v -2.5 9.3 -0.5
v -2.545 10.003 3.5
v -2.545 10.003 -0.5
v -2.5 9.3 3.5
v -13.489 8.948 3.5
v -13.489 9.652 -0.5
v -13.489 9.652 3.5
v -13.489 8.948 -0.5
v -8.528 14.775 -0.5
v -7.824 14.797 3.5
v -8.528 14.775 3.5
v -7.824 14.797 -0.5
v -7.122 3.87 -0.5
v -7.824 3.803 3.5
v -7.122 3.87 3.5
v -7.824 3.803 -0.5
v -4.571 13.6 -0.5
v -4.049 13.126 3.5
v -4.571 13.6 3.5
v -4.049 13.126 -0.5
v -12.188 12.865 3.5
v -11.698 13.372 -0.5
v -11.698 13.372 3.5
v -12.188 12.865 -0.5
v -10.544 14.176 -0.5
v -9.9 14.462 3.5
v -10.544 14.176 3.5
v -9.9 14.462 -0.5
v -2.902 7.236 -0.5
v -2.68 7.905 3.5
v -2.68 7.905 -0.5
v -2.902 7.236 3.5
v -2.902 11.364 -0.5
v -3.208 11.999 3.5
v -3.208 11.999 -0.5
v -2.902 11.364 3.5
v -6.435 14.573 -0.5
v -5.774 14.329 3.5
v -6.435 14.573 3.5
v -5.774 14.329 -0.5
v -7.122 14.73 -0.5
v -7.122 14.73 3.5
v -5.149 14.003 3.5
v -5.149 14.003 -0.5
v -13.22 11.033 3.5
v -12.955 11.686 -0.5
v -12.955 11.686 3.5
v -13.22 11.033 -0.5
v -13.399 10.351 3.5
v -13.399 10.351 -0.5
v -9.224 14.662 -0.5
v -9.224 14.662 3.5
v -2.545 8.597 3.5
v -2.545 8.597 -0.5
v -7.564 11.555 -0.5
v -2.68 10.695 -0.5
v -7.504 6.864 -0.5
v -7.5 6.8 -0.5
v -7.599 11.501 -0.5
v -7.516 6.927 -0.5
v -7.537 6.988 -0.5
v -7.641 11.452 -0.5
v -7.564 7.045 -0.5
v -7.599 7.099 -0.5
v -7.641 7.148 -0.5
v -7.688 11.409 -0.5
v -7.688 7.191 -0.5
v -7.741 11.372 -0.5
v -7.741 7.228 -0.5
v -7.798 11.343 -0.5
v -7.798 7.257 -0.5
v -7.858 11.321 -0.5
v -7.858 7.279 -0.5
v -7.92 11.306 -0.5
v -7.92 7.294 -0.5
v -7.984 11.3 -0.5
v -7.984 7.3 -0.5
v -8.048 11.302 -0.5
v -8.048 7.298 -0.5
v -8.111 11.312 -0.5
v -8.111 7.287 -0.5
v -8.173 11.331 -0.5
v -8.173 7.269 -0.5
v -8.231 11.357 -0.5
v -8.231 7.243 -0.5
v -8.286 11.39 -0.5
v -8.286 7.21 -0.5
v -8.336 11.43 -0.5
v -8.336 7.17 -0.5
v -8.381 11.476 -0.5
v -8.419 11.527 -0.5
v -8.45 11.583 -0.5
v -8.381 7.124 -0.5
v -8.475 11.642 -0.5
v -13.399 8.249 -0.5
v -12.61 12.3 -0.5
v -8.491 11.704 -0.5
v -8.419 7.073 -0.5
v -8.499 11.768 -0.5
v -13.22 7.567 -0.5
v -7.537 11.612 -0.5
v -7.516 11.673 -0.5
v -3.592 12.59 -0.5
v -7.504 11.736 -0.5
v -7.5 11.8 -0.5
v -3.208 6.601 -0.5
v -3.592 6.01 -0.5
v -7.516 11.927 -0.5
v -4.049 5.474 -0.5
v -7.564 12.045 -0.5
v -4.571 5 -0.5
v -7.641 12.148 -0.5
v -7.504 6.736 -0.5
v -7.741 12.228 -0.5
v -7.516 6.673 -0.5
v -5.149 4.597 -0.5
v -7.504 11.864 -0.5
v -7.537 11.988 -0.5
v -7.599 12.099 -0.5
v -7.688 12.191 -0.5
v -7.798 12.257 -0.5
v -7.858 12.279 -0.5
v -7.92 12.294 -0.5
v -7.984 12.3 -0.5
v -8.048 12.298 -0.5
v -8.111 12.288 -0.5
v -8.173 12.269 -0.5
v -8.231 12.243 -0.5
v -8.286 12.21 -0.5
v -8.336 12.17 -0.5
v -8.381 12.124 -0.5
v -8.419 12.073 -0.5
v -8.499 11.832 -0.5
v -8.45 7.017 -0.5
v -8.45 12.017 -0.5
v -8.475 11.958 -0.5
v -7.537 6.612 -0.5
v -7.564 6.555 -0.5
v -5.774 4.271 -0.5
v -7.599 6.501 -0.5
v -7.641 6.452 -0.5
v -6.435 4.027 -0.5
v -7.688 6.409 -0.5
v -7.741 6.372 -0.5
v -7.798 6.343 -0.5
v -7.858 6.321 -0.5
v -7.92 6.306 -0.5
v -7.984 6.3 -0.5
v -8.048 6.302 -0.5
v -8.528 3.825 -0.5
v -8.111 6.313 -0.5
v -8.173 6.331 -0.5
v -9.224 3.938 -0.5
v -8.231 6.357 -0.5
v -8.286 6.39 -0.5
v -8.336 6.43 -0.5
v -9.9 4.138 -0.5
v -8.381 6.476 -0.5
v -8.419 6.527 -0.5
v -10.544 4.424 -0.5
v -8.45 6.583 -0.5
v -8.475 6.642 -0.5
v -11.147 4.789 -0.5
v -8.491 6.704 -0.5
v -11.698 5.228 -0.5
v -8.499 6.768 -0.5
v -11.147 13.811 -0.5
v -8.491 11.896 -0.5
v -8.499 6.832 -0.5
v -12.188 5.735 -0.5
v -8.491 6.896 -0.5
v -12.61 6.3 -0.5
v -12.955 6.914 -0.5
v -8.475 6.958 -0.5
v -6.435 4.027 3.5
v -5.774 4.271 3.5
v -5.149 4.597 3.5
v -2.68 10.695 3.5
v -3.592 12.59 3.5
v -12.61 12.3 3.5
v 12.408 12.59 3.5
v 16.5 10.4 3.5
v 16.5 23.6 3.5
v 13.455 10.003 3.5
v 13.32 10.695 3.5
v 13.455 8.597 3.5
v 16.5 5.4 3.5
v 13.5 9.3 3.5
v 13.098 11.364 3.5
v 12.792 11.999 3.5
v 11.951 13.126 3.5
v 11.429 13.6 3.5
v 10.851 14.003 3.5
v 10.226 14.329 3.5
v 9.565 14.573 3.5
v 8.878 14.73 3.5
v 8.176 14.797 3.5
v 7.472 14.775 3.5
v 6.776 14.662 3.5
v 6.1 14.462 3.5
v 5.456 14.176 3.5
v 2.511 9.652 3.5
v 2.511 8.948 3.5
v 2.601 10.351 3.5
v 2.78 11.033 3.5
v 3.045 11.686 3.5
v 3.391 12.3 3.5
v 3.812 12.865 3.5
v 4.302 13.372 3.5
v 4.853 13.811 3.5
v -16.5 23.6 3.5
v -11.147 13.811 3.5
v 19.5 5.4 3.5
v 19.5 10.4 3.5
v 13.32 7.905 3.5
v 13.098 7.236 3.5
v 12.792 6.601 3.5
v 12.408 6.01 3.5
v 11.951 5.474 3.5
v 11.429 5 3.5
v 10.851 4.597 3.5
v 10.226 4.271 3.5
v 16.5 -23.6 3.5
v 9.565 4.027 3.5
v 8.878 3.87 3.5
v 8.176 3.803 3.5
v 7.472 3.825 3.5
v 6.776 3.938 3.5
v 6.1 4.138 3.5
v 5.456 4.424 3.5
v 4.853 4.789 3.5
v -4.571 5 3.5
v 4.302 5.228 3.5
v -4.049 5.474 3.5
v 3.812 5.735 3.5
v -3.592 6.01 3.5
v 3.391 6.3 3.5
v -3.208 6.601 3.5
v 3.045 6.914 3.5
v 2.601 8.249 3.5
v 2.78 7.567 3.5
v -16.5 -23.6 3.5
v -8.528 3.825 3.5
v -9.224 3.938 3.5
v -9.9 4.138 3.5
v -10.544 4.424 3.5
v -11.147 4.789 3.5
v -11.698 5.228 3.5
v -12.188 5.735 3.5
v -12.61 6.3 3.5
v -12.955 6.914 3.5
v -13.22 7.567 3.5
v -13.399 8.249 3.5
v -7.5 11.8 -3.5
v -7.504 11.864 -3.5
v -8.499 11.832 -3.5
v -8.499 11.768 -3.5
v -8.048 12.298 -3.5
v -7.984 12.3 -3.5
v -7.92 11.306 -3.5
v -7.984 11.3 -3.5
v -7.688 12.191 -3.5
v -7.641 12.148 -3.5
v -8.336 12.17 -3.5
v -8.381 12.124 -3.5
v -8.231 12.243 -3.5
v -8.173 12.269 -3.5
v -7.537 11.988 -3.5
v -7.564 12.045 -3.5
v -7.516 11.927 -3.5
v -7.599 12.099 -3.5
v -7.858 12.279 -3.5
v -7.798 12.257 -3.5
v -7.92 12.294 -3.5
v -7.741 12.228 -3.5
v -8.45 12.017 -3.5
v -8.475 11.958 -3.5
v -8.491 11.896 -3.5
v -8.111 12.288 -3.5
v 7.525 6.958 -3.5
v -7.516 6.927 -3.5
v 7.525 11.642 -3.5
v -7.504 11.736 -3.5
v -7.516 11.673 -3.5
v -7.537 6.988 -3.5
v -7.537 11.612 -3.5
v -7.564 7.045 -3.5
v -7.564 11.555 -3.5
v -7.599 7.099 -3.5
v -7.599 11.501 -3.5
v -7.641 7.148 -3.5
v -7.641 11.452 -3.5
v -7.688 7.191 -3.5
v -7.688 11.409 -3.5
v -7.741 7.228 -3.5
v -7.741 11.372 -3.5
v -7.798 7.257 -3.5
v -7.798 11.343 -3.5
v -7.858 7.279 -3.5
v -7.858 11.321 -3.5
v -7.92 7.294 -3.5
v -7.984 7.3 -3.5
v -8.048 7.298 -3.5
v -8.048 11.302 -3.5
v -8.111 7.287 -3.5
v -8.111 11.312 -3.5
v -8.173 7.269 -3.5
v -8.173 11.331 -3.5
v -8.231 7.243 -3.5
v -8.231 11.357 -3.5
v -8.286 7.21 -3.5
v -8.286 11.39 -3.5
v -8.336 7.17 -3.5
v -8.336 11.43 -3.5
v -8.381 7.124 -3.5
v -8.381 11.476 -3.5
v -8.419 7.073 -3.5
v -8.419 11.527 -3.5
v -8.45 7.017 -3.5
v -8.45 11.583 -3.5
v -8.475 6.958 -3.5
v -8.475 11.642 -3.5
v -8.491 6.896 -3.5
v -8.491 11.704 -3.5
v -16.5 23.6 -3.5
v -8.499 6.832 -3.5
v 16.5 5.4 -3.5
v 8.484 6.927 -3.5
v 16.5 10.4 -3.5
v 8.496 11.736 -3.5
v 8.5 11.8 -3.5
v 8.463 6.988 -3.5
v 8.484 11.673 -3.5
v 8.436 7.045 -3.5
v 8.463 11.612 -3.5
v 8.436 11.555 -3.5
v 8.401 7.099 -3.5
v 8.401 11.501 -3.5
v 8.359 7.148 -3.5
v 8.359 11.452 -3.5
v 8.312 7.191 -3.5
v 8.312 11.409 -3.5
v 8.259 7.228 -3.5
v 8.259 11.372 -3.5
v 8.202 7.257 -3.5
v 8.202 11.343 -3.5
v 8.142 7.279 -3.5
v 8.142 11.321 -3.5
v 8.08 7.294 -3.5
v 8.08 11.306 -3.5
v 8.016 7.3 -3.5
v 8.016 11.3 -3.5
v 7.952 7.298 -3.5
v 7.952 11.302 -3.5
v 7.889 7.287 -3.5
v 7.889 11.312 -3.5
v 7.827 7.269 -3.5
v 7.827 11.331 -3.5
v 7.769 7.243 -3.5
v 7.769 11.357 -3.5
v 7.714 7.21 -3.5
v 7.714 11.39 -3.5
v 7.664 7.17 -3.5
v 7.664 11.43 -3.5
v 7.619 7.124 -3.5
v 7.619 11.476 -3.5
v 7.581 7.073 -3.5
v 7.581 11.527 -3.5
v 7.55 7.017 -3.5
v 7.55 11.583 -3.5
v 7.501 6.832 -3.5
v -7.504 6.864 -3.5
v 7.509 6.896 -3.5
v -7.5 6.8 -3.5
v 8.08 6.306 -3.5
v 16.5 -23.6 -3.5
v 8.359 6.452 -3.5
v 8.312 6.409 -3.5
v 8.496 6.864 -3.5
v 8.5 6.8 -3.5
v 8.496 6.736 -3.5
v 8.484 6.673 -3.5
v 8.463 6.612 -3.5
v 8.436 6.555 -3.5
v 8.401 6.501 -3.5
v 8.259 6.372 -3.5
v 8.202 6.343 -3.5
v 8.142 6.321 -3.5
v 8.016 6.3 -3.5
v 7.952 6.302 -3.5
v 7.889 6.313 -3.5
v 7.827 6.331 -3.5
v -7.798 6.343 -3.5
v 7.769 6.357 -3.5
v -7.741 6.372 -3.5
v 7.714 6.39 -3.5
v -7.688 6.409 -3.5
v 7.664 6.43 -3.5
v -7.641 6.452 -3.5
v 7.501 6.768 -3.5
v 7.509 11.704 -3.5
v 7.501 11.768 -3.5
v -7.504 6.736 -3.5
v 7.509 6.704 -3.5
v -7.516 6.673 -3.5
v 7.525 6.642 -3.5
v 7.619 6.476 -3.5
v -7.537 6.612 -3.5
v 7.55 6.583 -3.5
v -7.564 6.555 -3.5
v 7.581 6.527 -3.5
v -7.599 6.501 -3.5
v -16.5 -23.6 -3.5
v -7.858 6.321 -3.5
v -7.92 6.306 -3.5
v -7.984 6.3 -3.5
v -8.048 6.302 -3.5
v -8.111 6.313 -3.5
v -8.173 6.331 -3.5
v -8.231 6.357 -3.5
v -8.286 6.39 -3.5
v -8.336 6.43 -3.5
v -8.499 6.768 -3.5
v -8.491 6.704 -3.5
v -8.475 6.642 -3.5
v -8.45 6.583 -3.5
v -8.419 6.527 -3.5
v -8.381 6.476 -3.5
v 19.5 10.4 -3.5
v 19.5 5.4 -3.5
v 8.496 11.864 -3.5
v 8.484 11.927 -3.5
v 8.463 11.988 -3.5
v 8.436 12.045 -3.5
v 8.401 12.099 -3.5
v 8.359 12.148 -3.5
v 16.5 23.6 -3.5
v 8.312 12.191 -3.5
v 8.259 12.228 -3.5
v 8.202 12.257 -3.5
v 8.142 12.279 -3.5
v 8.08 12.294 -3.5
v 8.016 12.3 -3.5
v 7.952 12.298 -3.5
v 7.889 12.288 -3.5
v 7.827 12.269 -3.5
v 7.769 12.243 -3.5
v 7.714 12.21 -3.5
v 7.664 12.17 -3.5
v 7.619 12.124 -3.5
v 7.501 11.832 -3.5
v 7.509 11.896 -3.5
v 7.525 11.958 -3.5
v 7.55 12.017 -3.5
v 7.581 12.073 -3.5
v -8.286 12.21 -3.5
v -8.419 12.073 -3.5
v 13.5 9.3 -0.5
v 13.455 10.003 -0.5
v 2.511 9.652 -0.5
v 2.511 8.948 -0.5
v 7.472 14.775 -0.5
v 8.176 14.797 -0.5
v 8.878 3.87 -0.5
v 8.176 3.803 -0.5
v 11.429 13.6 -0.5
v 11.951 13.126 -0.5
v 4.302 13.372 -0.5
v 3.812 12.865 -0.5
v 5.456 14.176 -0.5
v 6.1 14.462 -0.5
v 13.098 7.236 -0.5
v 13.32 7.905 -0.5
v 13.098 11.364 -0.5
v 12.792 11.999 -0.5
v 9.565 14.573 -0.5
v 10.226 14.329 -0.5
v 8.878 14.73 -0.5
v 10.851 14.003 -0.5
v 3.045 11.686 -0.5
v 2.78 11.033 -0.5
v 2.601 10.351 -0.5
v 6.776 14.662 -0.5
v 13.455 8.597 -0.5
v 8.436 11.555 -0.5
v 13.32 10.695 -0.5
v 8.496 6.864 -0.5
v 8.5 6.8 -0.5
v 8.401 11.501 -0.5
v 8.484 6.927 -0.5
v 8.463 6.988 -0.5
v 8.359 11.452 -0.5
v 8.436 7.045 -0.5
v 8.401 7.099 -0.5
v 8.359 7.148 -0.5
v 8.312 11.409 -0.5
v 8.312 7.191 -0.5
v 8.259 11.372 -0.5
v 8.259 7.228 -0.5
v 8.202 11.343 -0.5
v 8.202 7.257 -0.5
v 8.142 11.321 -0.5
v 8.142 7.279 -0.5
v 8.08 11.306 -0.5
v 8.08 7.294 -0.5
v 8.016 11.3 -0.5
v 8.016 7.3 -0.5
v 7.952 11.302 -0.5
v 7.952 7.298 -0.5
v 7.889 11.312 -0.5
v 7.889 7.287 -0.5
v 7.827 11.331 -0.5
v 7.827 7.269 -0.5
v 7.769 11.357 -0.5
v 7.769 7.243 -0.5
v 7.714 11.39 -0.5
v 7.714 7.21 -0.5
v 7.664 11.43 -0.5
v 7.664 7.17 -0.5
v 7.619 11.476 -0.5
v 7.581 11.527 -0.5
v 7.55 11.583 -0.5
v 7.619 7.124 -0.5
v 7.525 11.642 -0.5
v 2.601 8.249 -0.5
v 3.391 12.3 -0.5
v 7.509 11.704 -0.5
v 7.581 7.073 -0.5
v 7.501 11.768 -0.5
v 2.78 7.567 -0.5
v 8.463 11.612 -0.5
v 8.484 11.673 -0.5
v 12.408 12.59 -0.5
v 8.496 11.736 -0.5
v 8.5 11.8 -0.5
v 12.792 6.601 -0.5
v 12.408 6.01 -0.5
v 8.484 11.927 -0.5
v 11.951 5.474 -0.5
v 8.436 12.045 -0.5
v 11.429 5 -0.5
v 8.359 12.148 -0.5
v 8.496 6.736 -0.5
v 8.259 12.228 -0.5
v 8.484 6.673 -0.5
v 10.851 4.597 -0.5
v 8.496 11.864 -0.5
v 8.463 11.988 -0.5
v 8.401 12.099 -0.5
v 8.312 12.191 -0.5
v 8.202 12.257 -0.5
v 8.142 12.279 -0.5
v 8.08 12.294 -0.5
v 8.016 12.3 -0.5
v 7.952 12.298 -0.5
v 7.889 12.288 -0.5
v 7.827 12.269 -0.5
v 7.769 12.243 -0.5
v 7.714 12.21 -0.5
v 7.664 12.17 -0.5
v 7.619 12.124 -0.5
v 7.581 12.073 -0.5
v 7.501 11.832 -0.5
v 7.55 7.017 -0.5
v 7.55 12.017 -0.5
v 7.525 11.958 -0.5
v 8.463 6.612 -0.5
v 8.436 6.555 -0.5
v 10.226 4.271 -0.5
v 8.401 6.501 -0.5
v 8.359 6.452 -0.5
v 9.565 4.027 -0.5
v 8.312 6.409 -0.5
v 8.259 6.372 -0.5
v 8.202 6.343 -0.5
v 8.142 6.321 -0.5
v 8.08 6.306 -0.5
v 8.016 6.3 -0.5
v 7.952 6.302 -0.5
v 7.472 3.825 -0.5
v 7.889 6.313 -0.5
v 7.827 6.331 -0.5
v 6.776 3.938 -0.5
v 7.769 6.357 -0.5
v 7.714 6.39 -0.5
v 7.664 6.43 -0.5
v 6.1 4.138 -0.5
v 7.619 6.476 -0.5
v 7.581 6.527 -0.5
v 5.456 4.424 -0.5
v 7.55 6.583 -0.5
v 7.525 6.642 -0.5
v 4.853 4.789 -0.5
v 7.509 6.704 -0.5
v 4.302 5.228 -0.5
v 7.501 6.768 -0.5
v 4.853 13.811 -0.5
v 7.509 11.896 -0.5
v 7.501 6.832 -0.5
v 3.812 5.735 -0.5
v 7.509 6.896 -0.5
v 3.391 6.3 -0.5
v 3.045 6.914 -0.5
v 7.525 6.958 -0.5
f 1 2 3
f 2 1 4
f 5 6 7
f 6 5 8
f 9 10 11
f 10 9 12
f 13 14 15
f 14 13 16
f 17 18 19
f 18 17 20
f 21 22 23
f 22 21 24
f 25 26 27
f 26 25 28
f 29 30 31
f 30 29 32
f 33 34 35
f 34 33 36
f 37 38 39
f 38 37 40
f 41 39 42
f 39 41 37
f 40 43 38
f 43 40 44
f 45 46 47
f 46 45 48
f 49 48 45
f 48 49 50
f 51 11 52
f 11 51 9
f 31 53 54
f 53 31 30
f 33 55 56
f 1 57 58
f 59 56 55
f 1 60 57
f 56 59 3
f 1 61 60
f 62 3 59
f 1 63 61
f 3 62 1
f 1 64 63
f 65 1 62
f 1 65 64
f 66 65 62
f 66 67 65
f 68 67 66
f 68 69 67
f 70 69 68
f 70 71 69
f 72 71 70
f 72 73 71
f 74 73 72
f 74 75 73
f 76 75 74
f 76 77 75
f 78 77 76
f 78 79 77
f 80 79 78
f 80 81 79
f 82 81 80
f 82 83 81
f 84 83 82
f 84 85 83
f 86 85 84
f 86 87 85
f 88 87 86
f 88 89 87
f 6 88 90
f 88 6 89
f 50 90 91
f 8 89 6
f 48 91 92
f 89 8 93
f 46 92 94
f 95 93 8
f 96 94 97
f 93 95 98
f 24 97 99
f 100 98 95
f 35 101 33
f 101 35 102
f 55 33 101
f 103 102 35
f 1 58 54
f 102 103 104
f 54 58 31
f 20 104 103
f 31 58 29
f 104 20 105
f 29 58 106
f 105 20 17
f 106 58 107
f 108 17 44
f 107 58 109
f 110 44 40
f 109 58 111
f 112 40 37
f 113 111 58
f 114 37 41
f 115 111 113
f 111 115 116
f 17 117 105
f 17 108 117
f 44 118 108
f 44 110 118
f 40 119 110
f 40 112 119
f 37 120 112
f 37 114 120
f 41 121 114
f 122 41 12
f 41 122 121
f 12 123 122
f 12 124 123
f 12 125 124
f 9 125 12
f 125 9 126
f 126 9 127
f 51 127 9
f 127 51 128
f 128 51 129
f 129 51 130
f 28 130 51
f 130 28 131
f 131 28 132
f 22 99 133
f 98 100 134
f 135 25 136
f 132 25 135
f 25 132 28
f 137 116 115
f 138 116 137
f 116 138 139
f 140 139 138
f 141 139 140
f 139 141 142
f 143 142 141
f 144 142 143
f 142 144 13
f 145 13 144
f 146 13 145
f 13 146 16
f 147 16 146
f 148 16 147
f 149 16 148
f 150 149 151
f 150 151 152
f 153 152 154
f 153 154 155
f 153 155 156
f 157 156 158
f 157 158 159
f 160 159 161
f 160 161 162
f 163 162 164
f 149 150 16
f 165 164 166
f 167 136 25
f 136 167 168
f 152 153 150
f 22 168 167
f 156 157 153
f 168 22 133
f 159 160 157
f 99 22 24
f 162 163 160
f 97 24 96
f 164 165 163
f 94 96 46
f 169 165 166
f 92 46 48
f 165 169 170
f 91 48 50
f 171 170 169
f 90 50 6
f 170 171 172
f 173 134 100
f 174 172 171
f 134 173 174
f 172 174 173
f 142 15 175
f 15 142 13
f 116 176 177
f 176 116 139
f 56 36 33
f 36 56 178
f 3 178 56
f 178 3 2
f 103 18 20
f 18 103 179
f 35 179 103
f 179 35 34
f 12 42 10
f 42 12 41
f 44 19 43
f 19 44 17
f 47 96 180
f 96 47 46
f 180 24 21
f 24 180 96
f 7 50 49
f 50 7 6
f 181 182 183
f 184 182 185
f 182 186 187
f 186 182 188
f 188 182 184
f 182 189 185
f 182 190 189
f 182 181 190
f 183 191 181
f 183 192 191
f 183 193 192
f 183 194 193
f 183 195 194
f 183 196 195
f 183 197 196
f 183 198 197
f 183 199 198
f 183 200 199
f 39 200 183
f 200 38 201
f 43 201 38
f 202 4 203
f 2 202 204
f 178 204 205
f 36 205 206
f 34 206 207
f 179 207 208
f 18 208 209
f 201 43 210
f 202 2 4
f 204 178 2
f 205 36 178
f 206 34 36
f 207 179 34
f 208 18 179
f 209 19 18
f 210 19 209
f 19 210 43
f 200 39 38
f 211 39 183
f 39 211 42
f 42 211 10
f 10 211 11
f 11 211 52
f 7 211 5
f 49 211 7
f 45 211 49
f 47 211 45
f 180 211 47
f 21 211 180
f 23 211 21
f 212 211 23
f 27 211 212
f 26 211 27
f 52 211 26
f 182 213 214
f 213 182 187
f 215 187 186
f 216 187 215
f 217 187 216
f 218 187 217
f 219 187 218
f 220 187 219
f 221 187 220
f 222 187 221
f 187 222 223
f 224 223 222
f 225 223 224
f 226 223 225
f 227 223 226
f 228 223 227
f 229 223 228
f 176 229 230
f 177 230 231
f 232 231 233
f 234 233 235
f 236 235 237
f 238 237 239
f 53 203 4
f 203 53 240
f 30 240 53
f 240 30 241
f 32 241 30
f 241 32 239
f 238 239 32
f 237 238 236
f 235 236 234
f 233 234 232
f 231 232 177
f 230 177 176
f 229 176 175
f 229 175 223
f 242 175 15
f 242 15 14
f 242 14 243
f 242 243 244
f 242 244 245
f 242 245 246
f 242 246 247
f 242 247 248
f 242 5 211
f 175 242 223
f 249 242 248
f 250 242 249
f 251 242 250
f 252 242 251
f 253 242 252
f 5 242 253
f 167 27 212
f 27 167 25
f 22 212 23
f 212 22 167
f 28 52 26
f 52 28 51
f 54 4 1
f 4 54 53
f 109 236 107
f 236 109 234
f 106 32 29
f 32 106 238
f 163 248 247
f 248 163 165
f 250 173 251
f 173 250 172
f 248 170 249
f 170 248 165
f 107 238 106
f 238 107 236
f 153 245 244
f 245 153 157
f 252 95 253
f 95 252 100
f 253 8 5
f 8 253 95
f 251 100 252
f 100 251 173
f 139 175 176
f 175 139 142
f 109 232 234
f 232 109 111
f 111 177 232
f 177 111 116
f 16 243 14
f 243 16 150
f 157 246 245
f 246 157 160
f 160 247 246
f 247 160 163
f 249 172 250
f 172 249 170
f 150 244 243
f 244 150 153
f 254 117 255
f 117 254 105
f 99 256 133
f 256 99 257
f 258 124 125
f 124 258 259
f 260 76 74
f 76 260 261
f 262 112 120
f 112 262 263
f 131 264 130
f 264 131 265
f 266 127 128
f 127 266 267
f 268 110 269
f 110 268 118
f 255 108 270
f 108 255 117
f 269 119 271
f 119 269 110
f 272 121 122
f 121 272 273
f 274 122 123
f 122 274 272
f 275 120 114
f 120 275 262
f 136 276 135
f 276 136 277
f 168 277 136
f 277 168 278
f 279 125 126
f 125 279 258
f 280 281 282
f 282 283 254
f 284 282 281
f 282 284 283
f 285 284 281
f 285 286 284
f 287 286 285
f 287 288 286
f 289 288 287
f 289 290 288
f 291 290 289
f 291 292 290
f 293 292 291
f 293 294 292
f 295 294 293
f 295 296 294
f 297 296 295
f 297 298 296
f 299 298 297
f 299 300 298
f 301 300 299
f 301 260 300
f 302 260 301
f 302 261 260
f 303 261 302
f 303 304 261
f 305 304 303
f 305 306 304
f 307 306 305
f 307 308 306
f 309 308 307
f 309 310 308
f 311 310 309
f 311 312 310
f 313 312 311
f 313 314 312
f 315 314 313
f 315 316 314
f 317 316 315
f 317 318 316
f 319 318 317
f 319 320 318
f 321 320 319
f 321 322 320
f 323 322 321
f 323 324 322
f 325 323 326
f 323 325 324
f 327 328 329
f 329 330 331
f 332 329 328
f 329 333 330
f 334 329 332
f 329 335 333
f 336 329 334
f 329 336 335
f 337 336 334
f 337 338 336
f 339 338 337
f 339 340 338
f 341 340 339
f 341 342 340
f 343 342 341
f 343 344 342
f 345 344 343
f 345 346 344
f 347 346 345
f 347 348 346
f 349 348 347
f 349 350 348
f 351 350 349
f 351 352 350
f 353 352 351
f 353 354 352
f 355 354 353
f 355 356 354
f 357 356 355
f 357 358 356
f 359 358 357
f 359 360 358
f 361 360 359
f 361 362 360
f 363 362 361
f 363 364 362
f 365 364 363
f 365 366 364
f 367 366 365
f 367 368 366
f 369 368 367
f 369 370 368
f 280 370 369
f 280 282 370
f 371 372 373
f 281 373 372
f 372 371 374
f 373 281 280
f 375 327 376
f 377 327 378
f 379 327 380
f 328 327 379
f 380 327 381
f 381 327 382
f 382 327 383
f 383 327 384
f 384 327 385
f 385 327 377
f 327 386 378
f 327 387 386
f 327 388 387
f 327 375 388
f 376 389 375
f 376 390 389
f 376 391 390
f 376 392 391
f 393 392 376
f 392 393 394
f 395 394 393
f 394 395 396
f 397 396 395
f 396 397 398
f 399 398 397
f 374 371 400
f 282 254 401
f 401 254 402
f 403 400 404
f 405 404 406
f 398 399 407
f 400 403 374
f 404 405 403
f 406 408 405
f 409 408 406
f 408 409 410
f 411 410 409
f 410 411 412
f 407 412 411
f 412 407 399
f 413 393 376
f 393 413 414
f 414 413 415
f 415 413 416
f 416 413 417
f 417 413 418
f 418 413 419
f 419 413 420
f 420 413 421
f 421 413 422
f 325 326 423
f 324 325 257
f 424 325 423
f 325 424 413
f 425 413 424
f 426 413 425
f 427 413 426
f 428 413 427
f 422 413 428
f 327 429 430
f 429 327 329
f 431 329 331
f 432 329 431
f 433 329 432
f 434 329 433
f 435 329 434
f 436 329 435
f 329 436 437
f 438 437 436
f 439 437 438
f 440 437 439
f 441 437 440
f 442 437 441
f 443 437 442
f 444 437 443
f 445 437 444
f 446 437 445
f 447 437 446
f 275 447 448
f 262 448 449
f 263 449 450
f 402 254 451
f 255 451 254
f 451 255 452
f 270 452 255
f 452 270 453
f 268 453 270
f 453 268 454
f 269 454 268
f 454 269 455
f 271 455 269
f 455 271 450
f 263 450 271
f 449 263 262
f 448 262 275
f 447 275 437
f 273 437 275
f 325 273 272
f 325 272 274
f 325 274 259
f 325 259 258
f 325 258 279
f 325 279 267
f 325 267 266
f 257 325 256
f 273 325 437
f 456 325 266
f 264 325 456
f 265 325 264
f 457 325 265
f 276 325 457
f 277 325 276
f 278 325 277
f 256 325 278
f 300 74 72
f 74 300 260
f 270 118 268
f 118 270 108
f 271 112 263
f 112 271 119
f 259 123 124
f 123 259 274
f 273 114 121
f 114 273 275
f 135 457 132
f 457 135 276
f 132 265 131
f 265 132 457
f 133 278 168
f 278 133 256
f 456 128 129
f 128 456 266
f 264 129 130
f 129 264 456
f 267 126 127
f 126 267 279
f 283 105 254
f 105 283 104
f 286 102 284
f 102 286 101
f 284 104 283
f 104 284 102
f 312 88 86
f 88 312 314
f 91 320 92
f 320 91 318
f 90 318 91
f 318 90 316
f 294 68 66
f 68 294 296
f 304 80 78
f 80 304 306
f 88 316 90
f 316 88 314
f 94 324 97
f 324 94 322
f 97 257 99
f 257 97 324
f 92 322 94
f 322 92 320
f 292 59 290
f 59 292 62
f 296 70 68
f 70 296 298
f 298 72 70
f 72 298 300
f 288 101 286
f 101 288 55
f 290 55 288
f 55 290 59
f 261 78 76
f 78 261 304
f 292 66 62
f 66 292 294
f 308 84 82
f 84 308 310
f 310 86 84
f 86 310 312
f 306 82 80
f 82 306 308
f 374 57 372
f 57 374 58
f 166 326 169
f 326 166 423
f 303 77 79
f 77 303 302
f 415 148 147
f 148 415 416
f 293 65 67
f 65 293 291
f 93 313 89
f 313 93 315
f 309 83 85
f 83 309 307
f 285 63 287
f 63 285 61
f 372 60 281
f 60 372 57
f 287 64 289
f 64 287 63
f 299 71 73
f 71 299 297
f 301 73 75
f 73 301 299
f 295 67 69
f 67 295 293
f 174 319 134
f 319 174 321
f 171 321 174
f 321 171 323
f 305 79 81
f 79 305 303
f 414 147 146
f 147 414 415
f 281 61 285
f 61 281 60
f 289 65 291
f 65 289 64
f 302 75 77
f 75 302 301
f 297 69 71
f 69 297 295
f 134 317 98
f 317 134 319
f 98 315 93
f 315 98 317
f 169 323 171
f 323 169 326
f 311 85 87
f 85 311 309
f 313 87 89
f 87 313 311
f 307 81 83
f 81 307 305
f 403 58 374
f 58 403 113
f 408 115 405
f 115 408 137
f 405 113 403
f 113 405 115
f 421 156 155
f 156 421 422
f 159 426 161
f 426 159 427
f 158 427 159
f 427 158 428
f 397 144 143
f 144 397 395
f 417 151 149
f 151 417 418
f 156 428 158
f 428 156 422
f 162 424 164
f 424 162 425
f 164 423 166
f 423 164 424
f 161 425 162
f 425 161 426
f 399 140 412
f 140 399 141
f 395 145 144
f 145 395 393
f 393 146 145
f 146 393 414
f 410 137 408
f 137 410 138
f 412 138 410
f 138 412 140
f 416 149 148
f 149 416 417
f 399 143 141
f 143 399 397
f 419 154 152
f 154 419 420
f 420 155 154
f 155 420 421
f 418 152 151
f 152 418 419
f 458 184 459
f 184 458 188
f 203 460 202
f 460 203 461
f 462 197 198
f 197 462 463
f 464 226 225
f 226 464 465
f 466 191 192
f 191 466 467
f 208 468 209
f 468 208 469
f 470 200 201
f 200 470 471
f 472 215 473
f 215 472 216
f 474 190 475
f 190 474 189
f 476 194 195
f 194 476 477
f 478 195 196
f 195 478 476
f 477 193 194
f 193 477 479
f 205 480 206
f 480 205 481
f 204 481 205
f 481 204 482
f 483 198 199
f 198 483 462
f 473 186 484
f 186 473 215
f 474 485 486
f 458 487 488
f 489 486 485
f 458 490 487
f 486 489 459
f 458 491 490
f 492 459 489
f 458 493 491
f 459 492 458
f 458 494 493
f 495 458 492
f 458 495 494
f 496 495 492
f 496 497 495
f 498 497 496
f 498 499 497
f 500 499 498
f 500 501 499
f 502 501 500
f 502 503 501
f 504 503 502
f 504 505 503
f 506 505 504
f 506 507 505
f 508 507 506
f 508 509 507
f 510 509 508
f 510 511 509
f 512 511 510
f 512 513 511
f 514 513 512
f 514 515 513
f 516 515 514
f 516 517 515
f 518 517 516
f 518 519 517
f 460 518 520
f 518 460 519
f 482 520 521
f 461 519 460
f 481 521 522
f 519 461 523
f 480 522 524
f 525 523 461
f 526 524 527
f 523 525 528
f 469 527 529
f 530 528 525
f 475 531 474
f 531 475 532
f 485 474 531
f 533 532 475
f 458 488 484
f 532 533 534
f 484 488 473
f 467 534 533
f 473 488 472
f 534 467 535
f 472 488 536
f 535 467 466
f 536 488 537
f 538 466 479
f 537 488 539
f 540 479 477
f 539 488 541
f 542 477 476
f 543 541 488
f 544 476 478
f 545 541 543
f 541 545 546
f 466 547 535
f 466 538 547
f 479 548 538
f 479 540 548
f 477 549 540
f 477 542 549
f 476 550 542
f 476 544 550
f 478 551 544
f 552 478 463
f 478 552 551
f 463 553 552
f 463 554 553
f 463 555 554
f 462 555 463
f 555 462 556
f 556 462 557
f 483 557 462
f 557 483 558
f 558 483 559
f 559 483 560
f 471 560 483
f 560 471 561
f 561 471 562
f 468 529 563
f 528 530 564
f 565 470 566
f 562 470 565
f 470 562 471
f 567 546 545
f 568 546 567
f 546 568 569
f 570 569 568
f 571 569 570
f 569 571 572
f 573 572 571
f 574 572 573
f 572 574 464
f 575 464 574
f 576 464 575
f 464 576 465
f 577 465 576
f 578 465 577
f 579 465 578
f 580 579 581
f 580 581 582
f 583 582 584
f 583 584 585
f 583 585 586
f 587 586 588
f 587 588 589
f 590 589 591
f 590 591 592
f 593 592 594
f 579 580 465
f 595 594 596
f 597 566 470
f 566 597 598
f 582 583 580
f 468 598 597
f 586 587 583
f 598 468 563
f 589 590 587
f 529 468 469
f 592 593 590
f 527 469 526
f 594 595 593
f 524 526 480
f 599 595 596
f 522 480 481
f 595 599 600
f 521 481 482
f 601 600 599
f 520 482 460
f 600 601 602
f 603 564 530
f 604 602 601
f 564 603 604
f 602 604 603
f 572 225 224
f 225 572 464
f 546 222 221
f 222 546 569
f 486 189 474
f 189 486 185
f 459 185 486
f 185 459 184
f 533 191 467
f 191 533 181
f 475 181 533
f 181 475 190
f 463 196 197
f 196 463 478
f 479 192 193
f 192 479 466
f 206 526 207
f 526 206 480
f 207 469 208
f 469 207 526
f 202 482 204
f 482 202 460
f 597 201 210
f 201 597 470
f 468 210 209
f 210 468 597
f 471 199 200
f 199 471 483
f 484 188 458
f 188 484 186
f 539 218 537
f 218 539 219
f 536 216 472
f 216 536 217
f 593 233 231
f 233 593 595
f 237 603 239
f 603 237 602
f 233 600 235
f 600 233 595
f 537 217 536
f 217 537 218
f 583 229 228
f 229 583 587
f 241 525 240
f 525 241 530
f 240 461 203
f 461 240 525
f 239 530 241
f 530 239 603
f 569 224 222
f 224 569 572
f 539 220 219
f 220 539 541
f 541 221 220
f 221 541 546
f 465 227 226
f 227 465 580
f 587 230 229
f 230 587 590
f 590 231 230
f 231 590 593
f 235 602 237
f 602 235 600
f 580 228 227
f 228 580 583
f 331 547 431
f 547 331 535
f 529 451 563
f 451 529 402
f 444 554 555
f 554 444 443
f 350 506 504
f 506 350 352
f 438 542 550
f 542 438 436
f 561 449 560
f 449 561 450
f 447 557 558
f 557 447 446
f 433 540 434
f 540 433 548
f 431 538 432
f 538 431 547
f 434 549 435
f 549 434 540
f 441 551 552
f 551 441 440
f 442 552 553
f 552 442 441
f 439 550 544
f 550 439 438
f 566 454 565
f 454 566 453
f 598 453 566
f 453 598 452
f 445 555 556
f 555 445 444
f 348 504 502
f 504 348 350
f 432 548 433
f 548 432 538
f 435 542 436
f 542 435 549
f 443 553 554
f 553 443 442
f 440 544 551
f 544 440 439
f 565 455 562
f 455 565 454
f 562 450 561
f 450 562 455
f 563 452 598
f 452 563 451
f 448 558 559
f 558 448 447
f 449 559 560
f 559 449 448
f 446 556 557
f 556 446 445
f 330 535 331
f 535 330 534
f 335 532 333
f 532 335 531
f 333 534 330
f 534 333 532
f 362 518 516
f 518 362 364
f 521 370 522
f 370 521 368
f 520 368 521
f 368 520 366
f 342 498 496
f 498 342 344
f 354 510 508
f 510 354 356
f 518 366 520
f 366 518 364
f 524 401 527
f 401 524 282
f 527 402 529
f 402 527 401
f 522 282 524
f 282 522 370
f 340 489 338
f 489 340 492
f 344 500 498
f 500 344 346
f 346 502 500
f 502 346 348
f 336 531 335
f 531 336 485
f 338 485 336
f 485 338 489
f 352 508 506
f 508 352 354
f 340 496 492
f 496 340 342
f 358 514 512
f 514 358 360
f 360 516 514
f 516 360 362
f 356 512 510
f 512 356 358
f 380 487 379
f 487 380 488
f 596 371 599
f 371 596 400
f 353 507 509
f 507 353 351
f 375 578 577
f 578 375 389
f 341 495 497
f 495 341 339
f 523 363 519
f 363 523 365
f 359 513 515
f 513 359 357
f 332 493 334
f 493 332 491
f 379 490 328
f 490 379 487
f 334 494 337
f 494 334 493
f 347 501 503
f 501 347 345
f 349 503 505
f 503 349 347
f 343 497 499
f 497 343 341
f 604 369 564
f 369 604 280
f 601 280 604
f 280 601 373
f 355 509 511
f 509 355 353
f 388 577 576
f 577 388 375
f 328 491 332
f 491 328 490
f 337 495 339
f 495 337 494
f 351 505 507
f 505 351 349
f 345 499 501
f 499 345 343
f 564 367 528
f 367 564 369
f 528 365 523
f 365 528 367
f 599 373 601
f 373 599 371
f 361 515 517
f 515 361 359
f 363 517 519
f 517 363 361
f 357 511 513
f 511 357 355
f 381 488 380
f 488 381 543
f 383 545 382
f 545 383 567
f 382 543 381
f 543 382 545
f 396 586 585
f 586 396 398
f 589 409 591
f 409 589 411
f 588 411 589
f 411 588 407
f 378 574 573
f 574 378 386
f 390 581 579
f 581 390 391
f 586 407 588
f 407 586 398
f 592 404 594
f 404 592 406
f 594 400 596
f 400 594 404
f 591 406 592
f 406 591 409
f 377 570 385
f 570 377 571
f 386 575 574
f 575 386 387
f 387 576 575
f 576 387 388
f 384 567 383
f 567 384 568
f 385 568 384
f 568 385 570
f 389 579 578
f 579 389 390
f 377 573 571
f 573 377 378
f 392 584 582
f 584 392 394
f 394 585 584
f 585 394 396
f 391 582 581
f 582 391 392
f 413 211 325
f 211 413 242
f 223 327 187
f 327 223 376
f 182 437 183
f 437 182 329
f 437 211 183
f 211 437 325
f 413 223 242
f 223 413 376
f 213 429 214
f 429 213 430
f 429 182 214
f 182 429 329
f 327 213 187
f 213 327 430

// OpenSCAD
// file: globals_new.scad
// variables and global things for a single substrate holder
// to position a PCB with pogo-pins relative to a solar cell substrate
// for electrical characterization under illumination
// written by grey@christoforo.net
// on 13 OCT 2015
// numbers in mm

// modified by James Ball
// on 18 July 2017

$fn = 49; // defines arc roughness

keyWidth = 5; // for orientation key between cap and body
keyHeight = 3; // for orientation key between cap and body

//variables for optical alignment
opticAxisHeight=41; //height of optic axis above stage base
pixelHeight=19; //height of pixels from substrate edge
focusFromUpper=9; //gap from inside of stage upper lip to focal plane

//variables for the stage
stageLowerWidth=43.8; //width of the lower gap in the stage
stageUpperWidth=67.3; //width of the upper gap in the stage
stageLowerHeight=8.1; //height of lower lip above stage base
stageUpperHeight=16.3; //height of upper lip above stage base

//variables for reference photodiode
diodeSocketDiam=11; //diameter of socket for reference photodiode
diodeHeight=4; //height of the diode photodiode
diodeGap=5; //gap between the two photodiodes
diodeLegDiam=1; //diameter of hole for photodiode leg
diodeLegGap=5; //centre-centre spacing for photodiode legs

//variables for cap
capTol=0.2; //tolerance for cap fitting
window=22; //window len,wid
substrate=28; //substrate len,wid
subsTol=1; // tolerance extra room around substrate
substrateOffsetX=subsTol/2; //substrate offset from centerline
substrateOffsetY=subsTol/2; //substrate offset from centerline
capInsetHeight = 6;
capOverhang = 0;
tweezerSlotWidth = 5;
tweezerSlotIndent = 1;

//variables for body
wallThickness=3; //wall thickness above PCB shelf
aboveShelf=24; //height above shelf
belowShelf=stageUpperWidth-aboveShelf-focusFromUpper; //height below shelf to make total height with cap fit on upper part of stage
boardBuffer=0.3; //tolerance around board
board=36; //PCB len, wid
outletDown=15; // cable outlet offset from shelf
mountingHoleOffset = 2.3; //distance between edge of PCB and center of hole
holeDiameter = 2.6; //PCB mounting hole diameter
holeDepth = 5; //PCB mounting hole depth
holeDiameterTol = 0.2; //draw the mounting holes this much smaller
legSquare = 7; // leg slize square dim
shelfWidth = 1.5; //width of small shelf (& additional wall thickness of bottom half wall)
bodyWingWidth = 0;

//variables for height spacer
spacerThickness=opticAxisHeight-(wallThickness+wallThickness+pixelHeight)-stageLowerHeight;

//other variables
PCBThickness = 1.5;

// design checks
//assert(aboveShelf>(capInsetHeight+PCBThickness,'ERROR: Object overlap detected.') //assert doesn't exist (yet!)

// calculated body vars
totalHeight=belowShelf+aboveShelf;
cubeInner=board+boardBuffer;
cubeOuter=cubeInner+wallThickness;

sideOpeningWidth=cubeOuter-2*legSquare; //width of opening in side for wire exit
sideOpeningHeight=10; //height of opening in side for wire exit


//edge thing, Zmax=0, y=centered, mirrorable across @x=0 plane
module edgeThing(){
    translate([0,-wingWidth/2,-wallThickness*2])
    difference(){
        cube([wingWidth,wingLength,wallThickness*2]);
        cube([capTol,wingLength,wallThickness]); //cutout for cap tolerace
    }
}
// main file
// photodiode attachment to the body of a single substrate holder
// written by James Ball
// on 18 July 2017

include <globals_new.scad>

module diodeSocketWithLegs(){
    union(){
        // diode hole
        translate([0, 0, (diodeHeight+wallThickness)/2 - diodeHeight/2]) cylinder(diodeHeight, d=diodeSocketDiam, center=true);
        
        // diode leg hole 1
        translate([0,diodeLegGap/2,-(diodeHeight+wallThickness)/2 + wallThickness/2]) cylinder(wallThickness, d=diodeLegDiam, center=true);
        
        // diode leg hole 1
        translate([0,-diodeLegGap/2,-(diodeHeight+wallThickness)/2 + wallThickness/2]) cylinder(wallThickness, d=diodeLegDiam, center=true);
        }
    }
union(){
    difference(){
        // body of the attachment
        cube([diodeSocketDiam*3, cubeOuter+spacerThickness, diodeHeight+wallThickness],     center=true);
    
        // photodiode socket 1
        translate([-diodeSocketDiam / 2 - diodeGap / 2, -(cubeOuter+spacerThickness)/2 + (opticAxisHeight-stageLowerHeight), 0]) diodeSocketWithLegs();
    
        // photodidoe socket 2
        translate([diodeSocketDiam / 2 + diodeGap / 2, -(cubeOuter+spacerThickness)/2 + (opticAxisHeight-stageLowerHeight), 0]) diodeSocketWithLegs();
    }

    // add alignment notch
        translate([(diodeSocketDiam*3+wallThickness)/2, spacerThickness, 0]) cube([wallThickness,keyWidth, diodeHeight+wallThickness],center=true);
}
